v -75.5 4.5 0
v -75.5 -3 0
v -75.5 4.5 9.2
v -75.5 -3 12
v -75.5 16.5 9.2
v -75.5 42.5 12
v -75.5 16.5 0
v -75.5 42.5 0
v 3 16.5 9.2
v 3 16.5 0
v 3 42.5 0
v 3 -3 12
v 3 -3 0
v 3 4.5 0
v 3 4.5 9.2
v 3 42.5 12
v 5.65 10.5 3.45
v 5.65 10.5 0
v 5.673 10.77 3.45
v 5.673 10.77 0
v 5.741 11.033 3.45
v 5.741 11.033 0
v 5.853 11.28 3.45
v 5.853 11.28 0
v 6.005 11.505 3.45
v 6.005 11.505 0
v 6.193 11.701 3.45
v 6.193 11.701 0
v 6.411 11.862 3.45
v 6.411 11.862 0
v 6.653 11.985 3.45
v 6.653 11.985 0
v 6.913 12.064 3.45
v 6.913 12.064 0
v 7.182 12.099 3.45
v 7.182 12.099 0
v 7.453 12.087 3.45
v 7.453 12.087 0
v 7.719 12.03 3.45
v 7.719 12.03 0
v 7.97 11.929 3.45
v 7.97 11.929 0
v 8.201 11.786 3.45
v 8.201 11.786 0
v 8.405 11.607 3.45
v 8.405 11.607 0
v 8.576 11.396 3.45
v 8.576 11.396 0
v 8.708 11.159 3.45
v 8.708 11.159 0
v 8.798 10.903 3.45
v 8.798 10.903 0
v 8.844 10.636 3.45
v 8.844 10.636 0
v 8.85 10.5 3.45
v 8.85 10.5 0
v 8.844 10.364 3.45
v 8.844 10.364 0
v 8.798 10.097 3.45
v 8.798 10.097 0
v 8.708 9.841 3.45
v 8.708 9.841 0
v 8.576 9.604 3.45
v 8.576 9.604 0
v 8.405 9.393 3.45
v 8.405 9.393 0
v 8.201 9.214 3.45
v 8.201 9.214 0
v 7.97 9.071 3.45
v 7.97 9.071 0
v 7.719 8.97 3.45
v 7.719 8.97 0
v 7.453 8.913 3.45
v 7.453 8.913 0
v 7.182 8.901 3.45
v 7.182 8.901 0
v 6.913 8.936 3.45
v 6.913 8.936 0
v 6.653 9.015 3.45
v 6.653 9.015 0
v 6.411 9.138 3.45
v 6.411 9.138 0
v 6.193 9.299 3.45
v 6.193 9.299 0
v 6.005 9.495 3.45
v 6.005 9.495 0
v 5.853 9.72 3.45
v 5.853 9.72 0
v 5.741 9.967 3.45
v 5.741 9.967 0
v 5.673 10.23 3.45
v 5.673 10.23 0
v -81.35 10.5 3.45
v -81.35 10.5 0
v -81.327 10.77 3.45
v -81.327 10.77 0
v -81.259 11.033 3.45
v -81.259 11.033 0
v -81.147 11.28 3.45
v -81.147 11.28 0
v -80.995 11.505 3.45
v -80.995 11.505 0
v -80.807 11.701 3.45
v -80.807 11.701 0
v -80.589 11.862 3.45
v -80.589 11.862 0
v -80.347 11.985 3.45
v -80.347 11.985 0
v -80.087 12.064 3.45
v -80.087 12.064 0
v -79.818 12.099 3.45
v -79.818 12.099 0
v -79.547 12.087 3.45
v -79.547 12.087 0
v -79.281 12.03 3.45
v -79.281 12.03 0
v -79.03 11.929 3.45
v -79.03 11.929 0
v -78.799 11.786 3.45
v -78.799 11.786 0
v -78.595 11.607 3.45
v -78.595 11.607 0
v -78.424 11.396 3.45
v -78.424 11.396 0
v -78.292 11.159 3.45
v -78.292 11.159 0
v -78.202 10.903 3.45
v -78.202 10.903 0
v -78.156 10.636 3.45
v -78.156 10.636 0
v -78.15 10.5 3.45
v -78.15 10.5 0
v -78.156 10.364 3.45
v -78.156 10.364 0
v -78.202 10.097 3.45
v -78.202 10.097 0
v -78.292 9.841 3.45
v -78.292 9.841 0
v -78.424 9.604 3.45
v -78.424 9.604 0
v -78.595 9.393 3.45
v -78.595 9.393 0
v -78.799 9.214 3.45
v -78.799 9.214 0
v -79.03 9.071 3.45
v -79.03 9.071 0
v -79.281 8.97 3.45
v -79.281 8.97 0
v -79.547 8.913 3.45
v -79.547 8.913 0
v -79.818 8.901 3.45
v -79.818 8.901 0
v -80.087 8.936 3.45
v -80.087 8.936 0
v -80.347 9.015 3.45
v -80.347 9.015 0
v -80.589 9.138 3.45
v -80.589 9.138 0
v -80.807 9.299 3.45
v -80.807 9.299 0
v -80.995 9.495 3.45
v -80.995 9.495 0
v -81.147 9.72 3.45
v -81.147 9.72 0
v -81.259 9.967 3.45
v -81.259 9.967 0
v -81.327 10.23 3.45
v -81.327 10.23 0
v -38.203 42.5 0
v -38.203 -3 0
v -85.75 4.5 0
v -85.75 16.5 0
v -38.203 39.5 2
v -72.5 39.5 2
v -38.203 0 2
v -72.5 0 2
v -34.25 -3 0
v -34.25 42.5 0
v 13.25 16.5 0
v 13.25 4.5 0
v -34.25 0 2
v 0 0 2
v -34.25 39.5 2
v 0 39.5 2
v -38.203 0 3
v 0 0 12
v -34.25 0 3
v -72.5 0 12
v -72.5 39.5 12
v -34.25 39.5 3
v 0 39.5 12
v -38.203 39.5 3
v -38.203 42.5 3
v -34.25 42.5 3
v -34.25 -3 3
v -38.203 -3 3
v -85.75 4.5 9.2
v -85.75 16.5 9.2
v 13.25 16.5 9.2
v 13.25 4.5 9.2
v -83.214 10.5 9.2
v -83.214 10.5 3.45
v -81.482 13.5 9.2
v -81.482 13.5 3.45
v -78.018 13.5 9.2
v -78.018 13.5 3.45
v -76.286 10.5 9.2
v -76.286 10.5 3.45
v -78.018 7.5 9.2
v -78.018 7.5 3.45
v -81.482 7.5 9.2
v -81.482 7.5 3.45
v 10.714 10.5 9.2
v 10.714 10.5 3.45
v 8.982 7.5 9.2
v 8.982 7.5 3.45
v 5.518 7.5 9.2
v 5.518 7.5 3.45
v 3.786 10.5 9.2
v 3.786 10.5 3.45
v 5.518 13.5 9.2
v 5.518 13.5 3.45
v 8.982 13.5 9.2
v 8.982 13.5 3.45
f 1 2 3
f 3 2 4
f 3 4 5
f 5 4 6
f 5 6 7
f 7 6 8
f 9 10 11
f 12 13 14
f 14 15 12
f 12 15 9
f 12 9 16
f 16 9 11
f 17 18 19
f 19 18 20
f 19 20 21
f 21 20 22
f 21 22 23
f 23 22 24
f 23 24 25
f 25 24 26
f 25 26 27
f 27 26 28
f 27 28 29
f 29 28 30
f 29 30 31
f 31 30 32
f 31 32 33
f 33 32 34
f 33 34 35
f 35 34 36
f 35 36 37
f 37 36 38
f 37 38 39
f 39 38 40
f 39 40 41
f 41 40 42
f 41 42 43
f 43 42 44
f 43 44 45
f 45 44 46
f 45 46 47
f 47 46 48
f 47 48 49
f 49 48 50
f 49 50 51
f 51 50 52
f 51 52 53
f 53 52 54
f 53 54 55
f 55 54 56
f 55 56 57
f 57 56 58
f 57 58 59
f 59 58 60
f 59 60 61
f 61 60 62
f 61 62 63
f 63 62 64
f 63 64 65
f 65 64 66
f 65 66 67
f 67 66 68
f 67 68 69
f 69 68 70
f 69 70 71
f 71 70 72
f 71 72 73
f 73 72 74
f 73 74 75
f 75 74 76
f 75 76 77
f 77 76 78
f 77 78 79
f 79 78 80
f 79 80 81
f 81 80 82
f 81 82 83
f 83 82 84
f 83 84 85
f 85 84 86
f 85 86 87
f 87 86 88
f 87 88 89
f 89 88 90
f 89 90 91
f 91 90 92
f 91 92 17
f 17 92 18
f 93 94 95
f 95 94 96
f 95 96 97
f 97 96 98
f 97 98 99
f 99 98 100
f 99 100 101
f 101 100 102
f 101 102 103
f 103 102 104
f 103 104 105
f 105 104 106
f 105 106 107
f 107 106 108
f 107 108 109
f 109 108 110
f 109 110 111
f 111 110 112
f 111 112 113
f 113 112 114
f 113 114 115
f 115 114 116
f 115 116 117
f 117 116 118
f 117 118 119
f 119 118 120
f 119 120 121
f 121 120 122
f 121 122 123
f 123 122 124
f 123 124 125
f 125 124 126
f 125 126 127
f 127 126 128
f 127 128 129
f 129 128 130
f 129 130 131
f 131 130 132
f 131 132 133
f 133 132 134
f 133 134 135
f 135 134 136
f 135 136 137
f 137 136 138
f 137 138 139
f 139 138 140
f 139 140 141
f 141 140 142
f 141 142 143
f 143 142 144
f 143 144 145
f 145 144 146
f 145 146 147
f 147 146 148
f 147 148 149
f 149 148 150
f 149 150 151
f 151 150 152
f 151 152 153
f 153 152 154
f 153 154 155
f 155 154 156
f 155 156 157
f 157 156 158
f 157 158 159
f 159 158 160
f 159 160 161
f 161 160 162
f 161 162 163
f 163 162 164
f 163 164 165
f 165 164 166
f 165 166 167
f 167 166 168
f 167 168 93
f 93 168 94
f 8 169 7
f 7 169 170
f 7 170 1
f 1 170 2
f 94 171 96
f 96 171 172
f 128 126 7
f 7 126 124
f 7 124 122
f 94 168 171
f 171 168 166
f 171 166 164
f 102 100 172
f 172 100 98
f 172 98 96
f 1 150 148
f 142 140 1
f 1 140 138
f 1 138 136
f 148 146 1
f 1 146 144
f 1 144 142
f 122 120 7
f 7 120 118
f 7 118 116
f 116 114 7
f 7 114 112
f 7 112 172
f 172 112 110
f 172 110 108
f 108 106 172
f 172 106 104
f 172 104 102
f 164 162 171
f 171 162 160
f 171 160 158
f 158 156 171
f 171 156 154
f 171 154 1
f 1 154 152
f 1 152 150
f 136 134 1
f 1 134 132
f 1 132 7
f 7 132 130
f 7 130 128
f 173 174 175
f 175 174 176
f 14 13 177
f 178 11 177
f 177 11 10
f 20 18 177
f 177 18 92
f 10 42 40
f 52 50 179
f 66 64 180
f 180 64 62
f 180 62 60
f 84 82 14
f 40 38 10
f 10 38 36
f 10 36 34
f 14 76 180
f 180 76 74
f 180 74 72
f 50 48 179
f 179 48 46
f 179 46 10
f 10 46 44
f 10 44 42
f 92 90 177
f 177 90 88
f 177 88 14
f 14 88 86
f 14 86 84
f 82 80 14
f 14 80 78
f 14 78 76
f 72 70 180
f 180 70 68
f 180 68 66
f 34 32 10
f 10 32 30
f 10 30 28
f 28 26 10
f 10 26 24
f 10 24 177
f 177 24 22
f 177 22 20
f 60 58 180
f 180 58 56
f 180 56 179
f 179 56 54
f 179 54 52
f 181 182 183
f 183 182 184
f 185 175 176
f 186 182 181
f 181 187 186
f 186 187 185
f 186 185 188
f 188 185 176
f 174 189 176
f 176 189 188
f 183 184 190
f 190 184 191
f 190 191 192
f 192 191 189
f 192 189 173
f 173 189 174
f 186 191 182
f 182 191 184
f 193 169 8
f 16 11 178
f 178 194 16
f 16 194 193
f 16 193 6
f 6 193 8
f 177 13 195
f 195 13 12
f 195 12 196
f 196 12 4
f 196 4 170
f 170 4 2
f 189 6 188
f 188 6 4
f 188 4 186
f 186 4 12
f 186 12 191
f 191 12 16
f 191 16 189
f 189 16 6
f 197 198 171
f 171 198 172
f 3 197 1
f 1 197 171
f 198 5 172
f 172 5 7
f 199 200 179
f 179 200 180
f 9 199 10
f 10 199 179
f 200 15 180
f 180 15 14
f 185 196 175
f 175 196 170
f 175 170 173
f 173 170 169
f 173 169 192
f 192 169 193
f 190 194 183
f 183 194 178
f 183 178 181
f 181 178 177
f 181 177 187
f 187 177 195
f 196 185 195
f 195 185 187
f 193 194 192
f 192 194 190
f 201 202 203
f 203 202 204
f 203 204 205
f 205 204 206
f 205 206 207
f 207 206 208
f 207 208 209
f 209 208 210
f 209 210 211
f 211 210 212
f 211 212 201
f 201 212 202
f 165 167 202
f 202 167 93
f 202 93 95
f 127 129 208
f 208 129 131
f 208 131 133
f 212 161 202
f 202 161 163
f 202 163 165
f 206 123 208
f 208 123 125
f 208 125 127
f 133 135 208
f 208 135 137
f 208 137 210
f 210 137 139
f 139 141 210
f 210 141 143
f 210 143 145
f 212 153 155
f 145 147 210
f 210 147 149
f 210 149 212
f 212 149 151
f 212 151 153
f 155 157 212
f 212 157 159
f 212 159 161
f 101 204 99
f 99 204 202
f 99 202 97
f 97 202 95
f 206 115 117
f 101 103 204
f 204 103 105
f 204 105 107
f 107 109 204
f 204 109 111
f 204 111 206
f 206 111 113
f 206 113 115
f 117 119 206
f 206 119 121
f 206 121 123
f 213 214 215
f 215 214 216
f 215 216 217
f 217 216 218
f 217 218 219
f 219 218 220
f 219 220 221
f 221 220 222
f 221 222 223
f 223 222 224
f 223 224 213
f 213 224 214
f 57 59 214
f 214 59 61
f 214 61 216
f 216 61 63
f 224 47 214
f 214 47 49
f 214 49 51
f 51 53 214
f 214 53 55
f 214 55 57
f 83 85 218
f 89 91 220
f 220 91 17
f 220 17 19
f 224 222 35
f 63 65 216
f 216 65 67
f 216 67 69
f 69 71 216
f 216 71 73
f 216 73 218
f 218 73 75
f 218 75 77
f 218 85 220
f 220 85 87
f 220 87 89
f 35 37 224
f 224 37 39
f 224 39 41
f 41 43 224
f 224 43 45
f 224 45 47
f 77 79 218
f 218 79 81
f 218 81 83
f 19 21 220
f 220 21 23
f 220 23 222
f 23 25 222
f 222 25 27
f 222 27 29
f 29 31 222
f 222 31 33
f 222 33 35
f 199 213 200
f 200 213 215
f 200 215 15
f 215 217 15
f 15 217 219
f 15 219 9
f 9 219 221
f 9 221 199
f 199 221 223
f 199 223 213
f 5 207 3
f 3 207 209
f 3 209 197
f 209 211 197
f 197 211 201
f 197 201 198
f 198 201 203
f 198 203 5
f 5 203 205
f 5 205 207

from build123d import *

# Parameters (mm, degrees)
ESBO_O1_W                 = 72.5
ESBO_O1_H                 = 39.5
RESSALTO_EXTRUS_O1_DEPTH  = 2
ESBO_O1_3_W               = 78.5
ESBO_O1_3_H               = 45.5
ESBO_O1_3_W_2             = 72.5
ESBO_O1_3_H_2             = 39.5
RESSALTO_EXTRUS_O2_DEPTH  = 12
ESBO_O1_4_W               = 10.25
ESBO_O1_4_H               = 12
ESBO_O1_4_R               = 1.6
RESSALTO_EXTRUS_O3_DEPTH  = 6
ESBO_O3_W                 = 9.7
ESBO_O3_H                 = 3.2
RESSALTO_EXTRUS_O4_DEPTH  = 3.5
ESBO_O5_W                 = 3.952514159
ESBO_O5_H                 = 45.5
CORTE_EXTRUS_O4_DEPTH     = 3
RESSALTO_EXTRUS_O5_DEPTH  = 9.7
RESSALTO_EXTRUS_O6_DEPTH  = 9.7
ESBO_O9_W                 = 79.78598512
ESBO_O9_H                 = 21.194293461
CORTE_EXTRUS_O5_DEPTH     = 10
ESBO_O11_W                = 10.25
ESBO_O11_H                = 12
RESSALTO_EXTRUS_O8_DEPTH  = 1.2
ESBO_O12_R                = 1.6
CORTE_EXTRUS_O6_DEPTH     = 99.200369144
CORTE_EXTRUS_O7_START     = -3.75
ESBO_O13_R                = 1.6
CORTE_EXTRUS_O7_DEPTH     = 3.75
ESBO_O14_W                = 10.25
ESBO_O14_H                = 12
RESSALTO_EXTRUS_O10_DEPTH = 2


with BuildPart() as part:
    # Esboço1 → Ressalto-extrusão1 (new body)
    with BuildSketch(Plane.XY):
        with Locations((-36.25, 19.75)):
            Rectangle(ESBO_O1_W, ESBO_O1_H)
    extrude(amount=RESSALTO_EXTRUS_O1_DEPTH)

    # Esboço1<3> → Ressalto-extrusão2 (add)
    with BuildSketch(Plane.XY):
        with Locations((-36.25, 19.75)):
            Rectangle(ESBO_O1_3_W, ESBO_O1_3_H)
        with Locations((-36.25, 19.75)):
            Rectangle(ESBO_O1_3_W_2, ESBO_O1_3_H_2, mode=Mode.SUBTRACT)
    extrude(amount=RESSALTO_EXTRUS_O2_DEPTH)

    # Esboço1<4> → Ressalto-extrusão3 (add)
    # profile 1 of 2: a face of its own
    with BuildSketch(Plane.XY):
        with Locations((-80.625, 10.5)):
            Rectangle(ESBO_O1_4_W, ESBO_O1_4_H)
        with Locations((-79.75, 10.5)):
            Circle(ESBO_O1_4_R, mode=Mode.SUBTRACT)
    # profile 2 of 2: a face of its own
    with BuildSketch(Plane.XY):
        with Locations((8.125, 10.5)):
            Rectangle(ESBO_O1_4_W, ESBO_O1_4_H)
        with Locations((7.25, 10.5)):
            Circle(ESBO_O1_4_R, mode=Mode.SUBTRACT)
    extrude(amount=RESSALTO_EXTRUS_O3_DEPTH)

    # Esboço3 → Ressalto-extrusão4 (add)
    with BuildSketch(Plane(origin=(0, 0, 0), x_dir=(-1, 0, 0), z_dir=(0, 0, -1))):
        with Locations((63.4, 24.1)):
            Rectangle(ESBO_O3_W, ESBO_O3_H)
        with Locations((9.1, 24.1)):
            Rectangle(ESBO_O3_W, ESBO_O3_H)
    extrude(amount=RESSALTO_EXTRUS_O4_DEPTH)

    # Esboço5 → Corte-extrusão4 (cut)
    with BuildSketch(Plane(origin=(0, 0, 0), x_dir=(-1, 0, 0), z_dir=(0, 0, -1))):
        with Locations((36.22625708, 19.75)):
            Rectangle(ESBO_O5_W, ESBO_O5_H)
    extrude(amount=-CORTE_EXTRUS_O4_DEPTH, mode=Mode.SUBTRACT)

    # Esboço7 → Ressalto-extrusão5 (add)
    with BuildSketch(Plane(origin=(-58.55, 0, 0), x_dir=(0, 0, -1), z_dir=(1, 0, 0))):
        Polygon((3.5, 25.7), (3.5, 26.2), (4.5, 25.7), (3.5, 22.5), align=None)
    extrude(amount=-RESSALTO_EXTRUS_O5_DEPTH)

    # Esboço8 → Ressalto-extrusão6 (add)
    with BuildSketch(Plane(origin=(-4.25, 0, 0), x_dir=(0, 0, -1), z_dir=(1, 0, 0))):
        Polygon((3.5, 25.7), (3.5, 26.2), (4.5, 25.7), (3.5, 22.5), align=None)
    extrude(amount=-RESSALTO_EXTRUS_O6_DEPTH)

    # Esboço9 → Corte-extrusão5 (cut)
    with BuildSketch(Plane(origin=(0, 0, -10), x_dir=(-1, 0, 0), z_dir=(0, 0, -1))):
        with Locations((37.346022271, 20.867499613)):
            Rectangle(ESBO_O9_W, ESBO_O9_H)
    extrude(amount=-CORTE_EXTRUS_O5_DEPTH, mode=Mode.SUBTRACT)

    # Esboço11 → Ressalto-extrusão8 (add)
    with BuildSketch(Plane.XY.offset(6)):
        with Locations((8.125, 10.5)):
            Rectangle(ESBO_O11_W, ESBO_O11_H)
        with Locations((-80.625, 10.5)):
            Rectangle(ESBO_O11_W, ESBO_O11_H)
    extrude(amount=RESSALTO_EXTRUS_O8_DEPTH)

    # Esboço12 → Corte-extrusão6 (cut, through all)
    with BuildSketch(Plane(origin=(0, 0, -10), x_dir=(-1, 0, 0), z_dir=(0, 0, -1))):
        with Locations(Location((-7.25, 10.5, 0), (0, 0, 180))):
            Circle(ESBO_O12_R)
        with Locations(Location((79.75, 10.5, 0), (0, 0, 180))):
            Circle(ESBO_O12_R)
    extrude(amount=-CORTE_EXTRUS_O6_DEPTH, mode=Mode.SUBTRACT)

    # Esboço13 → Corte-extrusão7 (cut)
    # profile 1 of 2: a face of its own
    with BuildSketch(Plane.XY.offset(7.2).offset(CORTE_EXTRUS_O7_START)):
        Polygon((-83.214101615, 10.5), (-81.482050808, 7.5), (-78.017949192, 7.5), (-76.285898385, 10.5), (-78.017949192, 13.5), (-81.482050808, 13.5), align=None)
        with Locations((-79.75, 10.5)):
            Circle(ESBO_O13_R, mode=Mode.SUBTRACT)
    # profile 2 of 2: a face of its own
    with BuildSketch(Plane.XY.offset(7.2).offset(CORTE_EXTRUS_O7_START)):
        Polygon((10.714101615, 10.5), (8.982050808, 13.5), (5.517949192, 13.5), (3.785898385, 10.5), (5.517949192, 7.5), (8.982050808, 7.5), align=None)
        with Locations((7.25, 10.5)):
            Circle(ESBO_O13_R, mode=Mode.SUBTRACT)
    extrude(amount=CORTE_EXTRUS_O7_DEPTH, mode=Mode.SUBTRACT)

    # Esboço14 → Ressalto-extrusão10 (add)
    # profile 1 of 2: a face of its own
    with BuildSketch(Plane.XY.offset(7.2)):
        with Locations((8.125, 10.5)):
            Rectangle(ESBO_O14_W, ESBO_O14_H)
        Polygon((8.982050808, 7.5), (10.714101615, 10.5), (8.982050808, 13.5), (5.517949192, 13.5), (3.785898385, 10.5), (5.517949192, 7.5), align=None, mode=Mode.SUBTRACT)
    # profile 2 of 2: a face of its own
    with BuildSketch(Plane.XY.offset(7.2)):
        with Locations((-80.625, 10.5)):
            Rectangle(ESBO_O14_W, ESBO_O14_H)
        Polygon((-81.482050808, 13.5), (-83.214101615, 10.5), (-81.482050808, 7.5), (-78.017949192, 7.5), (-76.285898385, 10.5), (-78.017949192, 13.5), align=None, mode=Mode.SUBTRACT)
    extrude(amount=RESSALTO_EXTRUS_O10_DEPTH)


solid = part.part
